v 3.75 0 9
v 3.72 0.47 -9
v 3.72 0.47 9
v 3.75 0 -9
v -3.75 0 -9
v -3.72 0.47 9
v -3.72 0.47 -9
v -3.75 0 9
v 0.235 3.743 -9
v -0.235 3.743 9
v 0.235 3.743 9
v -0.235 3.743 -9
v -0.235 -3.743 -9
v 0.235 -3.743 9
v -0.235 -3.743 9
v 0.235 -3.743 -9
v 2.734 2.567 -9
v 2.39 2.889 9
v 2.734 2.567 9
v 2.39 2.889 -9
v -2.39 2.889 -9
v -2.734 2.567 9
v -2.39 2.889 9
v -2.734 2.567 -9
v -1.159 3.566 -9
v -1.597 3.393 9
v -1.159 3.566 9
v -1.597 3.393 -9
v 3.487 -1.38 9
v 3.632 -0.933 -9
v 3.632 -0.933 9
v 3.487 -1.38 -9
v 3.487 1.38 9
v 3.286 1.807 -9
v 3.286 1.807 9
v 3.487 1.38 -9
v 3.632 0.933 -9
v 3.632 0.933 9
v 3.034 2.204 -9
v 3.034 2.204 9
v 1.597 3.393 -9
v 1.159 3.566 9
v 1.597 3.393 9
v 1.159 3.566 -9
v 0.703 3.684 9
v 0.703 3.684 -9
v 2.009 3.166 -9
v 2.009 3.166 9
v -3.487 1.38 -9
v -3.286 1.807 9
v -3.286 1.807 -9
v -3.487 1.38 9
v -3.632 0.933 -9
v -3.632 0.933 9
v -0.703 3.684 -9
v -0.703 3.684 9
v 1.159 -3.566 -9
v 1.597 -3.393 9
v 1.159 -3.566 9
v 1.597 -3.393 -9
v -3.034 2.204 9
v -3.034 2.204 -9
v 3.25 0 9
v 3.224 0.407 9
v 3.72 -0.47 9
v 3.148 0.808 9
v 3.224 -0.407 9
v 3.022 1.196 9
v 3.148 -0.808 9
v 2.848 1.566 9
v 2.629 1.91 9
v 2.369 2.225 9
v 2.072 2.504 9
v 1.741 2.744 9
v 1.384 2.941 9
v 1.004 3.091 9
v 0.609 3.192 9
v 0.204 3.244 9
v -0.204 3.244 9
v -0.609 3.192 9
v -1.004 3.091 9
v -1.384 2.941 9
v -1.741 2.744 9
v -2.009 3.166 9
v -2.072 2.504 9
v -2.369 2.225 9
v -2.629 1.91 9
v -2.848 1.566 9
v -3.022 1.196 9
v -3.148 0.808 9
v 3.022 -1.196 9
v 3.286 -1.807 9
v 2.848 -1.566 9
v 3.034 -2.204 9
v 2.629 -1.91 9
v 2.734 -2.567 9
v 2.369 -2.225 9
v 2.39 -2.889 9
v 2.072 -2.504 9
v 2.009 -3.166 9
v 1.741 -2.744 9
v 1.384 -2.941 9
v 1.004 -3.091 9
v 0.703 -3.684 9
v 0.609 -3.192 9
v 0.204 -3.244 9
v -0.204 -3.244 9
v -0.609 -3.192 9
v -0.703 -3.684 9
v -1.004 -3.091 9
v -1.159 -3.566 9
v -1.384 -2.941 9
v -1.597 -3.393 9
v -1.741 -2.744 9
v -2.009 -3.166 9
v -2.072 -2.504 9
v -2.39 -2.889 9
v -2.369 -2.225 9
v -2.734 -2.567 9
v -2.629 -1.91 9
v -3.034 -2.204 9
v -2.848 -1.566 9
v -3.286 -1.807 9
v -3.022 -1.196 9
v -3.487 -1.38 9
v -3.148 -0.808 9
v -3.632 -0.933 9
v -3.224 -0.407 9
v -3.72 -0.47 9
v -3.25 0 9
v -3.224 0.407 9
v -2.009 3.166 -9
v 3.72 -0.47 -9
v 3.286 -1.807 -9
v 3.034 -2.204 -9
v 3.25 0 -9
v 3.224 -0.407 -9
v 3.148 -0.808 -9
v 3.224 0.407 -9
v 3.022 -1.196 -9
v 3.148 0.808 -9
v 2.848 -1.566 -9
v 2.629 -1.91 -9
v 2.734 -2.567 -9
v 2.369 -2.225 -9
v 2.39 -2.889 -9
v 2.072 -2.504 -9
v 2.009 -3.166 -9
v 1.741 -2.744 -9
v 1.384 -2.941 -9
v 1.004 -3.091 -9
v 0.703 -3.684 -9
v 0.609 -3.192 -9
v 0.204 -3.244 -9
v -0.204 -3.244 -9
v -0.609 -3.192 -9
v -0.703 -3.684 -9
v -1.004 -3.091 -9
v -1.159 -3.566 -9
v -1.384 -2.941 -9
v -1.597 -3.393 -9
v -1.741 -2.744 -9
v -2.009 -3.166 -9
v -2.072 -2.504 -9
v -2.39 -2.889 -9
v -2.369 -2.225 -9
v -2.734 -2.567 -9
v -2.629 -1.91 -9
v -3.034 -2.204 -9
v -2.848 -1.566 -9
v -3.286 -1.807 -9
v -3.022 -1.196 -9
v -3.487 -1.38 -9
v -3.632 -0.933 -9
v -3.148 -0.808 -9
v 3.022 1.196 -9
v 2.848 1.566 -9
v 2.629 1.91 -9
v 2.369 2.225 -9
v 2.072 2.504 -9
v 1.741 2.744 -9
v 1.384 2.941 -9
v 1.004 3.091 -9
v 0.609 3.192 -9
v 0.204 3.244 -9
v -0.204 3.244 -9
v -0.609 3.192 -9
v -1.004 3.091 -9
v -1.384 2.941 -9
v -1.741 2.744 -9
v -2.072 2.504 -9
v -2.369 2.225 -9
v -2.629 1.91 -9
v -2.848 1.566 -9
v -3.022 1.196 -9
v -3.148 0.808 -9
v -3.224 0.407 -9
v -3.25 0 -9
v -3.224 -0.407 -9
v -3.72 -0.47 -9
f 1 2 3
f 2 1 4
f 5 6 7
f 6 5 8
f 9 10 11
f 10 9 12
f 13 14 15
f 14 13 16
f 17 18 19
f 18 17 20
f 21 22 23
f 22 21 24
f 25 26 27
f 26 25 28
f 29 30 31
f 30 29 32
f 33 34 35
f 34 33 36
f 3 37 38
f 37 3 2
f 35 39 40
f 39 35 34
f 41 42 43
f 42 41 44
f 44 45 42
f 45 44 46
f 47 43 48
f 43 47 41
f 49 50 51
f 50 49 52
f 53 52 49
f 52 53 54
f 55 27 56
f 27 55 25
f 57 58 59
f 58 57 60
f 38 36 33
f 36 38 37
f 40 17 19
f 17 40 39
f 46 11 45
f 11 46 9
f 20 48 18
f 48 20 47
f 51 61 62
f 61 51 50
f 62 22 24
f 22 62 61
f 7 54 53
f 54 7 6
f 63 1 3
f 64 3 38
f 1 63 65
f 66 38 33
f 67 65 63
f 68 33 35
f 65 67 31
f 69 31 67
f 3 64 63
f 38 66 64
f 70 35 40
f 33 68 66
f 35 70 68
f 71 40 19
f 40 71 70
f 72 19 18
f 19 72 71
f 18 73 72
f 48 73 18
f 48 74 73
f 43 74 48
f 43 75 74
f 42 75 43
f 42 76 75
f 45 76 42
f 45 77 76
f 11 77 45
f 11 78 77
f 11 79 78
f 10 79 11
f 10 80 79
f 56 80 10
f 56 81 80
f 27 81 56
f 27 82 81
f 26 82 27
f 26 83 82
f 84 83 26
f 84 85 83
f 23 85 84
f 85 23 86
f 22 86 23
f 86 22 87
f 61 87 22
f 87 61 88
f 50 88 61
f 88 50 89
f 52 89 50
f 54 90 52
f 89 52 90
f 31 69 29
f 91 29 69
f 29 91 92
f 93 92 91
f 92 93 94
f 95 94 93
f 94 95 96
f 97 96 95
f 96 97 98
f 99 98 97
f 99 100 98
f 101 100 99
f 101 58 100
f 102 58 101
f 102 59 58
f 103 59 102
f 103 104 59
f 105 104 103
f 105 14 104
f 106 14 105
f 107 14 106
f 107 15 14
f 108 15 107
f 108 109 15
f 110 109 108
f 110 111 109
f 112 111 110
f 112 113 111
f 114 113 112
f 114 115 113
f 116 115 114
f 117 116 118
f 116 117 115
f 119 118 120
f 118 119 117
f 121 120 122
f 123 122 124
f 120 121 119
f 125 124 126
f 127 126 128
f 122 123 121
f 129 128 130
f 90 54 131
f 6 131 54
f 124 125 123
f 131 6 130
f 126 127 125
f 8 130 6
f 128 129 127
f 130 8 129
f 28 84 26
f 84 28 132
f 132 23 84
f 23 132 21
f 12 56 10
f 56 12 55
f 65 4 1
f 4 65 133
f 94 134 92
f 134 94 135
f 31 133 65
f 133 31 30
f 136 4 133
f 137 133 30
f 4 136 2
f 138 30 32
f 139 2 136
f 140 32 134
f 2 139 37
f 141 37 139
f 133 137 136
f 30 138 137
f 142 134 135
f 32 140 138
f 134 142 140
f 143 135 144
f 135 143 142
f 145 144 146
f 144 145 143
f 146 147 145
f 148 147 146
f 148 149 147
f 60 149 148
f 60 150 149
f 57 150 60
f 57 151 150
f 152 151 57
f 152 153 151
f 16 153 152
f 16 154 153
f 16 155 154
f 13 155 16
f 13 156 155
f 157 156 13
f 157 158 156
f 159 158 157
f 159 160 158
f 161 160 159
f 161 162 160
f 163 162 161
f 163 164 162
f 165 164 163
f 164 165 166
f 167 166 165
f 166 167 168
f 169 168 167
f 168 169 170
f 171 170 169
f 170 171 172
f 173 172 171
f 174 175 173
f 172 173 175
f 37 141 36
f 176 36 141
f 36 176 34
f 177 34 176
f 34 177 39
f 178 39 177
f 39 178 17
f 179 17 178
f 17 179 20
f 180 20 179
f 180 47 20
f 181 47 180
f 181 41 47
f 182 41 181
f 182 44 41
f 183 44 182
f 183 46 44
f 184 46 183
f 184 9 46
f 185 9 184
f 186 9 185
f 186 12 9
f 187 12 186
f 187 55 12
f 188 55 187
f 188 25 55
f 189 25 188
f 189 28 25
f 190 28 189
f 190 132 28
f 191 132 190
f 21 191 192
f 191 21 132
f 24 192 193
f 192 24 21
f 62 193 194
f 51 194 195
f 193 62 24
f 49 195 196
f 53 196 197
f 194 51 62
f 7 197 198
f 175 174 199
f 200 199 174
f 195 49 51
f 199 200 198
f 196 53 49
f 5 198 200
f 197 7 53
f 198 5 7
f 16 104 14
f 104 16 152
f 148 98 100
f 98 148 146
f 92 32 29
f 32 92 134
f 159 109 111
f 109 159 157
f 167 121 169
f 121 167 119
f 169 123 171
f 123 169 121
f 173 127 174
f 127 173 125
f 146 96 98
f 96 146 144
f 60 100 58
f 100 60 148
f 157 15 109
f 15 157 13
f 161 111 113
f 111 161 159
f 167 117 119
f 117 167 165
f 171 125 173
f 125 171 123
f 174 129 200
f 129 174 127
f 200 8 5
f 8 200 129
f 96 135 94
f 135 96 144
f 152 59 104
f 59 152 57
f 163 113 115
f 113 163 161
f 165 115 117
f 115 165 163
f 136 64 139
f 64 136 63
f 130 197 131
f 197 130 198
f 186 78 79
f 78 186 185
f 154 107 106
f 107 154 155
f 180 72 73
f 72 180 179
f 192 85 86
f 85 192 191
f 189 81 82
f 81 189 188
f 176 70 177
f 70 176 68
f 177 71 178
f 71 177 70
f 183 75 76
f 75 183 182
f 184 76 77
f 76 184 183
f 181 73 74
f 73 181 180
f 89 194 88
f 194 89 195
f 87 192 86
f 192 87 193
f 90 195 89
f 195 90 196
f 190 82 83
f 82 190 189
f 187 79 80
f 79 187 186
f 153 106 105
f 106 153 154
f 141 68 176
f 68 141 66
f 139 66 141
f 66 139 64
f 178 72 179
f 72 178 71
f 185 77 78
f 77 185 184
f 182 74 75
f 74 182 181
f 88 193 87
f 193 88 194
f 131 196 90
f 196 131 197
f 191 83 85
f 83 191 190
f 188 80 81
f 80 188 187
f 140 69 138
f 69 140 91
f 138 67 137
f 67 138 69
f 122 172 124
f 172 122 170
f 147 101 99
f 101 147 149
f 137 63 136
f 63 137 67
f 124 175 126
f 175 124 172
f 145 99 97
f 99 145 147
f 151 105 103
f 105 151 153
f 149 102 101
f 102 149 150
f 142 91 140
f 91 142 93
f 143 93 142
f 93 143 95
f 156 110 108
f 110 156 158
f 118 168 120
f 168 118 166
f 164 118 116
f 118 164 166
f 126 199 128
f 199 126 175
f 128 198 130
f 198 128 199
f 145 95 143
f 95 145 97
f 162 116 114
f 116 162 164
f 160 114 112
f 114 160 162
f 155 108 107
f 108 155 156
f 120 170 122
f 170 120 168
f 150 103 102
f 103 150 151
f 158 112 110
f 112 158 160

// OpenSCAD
$fn = 50;


difference() {
	union() {
		translate(v = [0, 0, -9.0000000000]) {
			cylinder(h = 18, r = 3.7500000000);
		}
	}
	union() {
		translate(v = [0, 0, -100.0000000000]) {
			cylinder(h = 200, r = 3.2500000000);
		}
	}
}
